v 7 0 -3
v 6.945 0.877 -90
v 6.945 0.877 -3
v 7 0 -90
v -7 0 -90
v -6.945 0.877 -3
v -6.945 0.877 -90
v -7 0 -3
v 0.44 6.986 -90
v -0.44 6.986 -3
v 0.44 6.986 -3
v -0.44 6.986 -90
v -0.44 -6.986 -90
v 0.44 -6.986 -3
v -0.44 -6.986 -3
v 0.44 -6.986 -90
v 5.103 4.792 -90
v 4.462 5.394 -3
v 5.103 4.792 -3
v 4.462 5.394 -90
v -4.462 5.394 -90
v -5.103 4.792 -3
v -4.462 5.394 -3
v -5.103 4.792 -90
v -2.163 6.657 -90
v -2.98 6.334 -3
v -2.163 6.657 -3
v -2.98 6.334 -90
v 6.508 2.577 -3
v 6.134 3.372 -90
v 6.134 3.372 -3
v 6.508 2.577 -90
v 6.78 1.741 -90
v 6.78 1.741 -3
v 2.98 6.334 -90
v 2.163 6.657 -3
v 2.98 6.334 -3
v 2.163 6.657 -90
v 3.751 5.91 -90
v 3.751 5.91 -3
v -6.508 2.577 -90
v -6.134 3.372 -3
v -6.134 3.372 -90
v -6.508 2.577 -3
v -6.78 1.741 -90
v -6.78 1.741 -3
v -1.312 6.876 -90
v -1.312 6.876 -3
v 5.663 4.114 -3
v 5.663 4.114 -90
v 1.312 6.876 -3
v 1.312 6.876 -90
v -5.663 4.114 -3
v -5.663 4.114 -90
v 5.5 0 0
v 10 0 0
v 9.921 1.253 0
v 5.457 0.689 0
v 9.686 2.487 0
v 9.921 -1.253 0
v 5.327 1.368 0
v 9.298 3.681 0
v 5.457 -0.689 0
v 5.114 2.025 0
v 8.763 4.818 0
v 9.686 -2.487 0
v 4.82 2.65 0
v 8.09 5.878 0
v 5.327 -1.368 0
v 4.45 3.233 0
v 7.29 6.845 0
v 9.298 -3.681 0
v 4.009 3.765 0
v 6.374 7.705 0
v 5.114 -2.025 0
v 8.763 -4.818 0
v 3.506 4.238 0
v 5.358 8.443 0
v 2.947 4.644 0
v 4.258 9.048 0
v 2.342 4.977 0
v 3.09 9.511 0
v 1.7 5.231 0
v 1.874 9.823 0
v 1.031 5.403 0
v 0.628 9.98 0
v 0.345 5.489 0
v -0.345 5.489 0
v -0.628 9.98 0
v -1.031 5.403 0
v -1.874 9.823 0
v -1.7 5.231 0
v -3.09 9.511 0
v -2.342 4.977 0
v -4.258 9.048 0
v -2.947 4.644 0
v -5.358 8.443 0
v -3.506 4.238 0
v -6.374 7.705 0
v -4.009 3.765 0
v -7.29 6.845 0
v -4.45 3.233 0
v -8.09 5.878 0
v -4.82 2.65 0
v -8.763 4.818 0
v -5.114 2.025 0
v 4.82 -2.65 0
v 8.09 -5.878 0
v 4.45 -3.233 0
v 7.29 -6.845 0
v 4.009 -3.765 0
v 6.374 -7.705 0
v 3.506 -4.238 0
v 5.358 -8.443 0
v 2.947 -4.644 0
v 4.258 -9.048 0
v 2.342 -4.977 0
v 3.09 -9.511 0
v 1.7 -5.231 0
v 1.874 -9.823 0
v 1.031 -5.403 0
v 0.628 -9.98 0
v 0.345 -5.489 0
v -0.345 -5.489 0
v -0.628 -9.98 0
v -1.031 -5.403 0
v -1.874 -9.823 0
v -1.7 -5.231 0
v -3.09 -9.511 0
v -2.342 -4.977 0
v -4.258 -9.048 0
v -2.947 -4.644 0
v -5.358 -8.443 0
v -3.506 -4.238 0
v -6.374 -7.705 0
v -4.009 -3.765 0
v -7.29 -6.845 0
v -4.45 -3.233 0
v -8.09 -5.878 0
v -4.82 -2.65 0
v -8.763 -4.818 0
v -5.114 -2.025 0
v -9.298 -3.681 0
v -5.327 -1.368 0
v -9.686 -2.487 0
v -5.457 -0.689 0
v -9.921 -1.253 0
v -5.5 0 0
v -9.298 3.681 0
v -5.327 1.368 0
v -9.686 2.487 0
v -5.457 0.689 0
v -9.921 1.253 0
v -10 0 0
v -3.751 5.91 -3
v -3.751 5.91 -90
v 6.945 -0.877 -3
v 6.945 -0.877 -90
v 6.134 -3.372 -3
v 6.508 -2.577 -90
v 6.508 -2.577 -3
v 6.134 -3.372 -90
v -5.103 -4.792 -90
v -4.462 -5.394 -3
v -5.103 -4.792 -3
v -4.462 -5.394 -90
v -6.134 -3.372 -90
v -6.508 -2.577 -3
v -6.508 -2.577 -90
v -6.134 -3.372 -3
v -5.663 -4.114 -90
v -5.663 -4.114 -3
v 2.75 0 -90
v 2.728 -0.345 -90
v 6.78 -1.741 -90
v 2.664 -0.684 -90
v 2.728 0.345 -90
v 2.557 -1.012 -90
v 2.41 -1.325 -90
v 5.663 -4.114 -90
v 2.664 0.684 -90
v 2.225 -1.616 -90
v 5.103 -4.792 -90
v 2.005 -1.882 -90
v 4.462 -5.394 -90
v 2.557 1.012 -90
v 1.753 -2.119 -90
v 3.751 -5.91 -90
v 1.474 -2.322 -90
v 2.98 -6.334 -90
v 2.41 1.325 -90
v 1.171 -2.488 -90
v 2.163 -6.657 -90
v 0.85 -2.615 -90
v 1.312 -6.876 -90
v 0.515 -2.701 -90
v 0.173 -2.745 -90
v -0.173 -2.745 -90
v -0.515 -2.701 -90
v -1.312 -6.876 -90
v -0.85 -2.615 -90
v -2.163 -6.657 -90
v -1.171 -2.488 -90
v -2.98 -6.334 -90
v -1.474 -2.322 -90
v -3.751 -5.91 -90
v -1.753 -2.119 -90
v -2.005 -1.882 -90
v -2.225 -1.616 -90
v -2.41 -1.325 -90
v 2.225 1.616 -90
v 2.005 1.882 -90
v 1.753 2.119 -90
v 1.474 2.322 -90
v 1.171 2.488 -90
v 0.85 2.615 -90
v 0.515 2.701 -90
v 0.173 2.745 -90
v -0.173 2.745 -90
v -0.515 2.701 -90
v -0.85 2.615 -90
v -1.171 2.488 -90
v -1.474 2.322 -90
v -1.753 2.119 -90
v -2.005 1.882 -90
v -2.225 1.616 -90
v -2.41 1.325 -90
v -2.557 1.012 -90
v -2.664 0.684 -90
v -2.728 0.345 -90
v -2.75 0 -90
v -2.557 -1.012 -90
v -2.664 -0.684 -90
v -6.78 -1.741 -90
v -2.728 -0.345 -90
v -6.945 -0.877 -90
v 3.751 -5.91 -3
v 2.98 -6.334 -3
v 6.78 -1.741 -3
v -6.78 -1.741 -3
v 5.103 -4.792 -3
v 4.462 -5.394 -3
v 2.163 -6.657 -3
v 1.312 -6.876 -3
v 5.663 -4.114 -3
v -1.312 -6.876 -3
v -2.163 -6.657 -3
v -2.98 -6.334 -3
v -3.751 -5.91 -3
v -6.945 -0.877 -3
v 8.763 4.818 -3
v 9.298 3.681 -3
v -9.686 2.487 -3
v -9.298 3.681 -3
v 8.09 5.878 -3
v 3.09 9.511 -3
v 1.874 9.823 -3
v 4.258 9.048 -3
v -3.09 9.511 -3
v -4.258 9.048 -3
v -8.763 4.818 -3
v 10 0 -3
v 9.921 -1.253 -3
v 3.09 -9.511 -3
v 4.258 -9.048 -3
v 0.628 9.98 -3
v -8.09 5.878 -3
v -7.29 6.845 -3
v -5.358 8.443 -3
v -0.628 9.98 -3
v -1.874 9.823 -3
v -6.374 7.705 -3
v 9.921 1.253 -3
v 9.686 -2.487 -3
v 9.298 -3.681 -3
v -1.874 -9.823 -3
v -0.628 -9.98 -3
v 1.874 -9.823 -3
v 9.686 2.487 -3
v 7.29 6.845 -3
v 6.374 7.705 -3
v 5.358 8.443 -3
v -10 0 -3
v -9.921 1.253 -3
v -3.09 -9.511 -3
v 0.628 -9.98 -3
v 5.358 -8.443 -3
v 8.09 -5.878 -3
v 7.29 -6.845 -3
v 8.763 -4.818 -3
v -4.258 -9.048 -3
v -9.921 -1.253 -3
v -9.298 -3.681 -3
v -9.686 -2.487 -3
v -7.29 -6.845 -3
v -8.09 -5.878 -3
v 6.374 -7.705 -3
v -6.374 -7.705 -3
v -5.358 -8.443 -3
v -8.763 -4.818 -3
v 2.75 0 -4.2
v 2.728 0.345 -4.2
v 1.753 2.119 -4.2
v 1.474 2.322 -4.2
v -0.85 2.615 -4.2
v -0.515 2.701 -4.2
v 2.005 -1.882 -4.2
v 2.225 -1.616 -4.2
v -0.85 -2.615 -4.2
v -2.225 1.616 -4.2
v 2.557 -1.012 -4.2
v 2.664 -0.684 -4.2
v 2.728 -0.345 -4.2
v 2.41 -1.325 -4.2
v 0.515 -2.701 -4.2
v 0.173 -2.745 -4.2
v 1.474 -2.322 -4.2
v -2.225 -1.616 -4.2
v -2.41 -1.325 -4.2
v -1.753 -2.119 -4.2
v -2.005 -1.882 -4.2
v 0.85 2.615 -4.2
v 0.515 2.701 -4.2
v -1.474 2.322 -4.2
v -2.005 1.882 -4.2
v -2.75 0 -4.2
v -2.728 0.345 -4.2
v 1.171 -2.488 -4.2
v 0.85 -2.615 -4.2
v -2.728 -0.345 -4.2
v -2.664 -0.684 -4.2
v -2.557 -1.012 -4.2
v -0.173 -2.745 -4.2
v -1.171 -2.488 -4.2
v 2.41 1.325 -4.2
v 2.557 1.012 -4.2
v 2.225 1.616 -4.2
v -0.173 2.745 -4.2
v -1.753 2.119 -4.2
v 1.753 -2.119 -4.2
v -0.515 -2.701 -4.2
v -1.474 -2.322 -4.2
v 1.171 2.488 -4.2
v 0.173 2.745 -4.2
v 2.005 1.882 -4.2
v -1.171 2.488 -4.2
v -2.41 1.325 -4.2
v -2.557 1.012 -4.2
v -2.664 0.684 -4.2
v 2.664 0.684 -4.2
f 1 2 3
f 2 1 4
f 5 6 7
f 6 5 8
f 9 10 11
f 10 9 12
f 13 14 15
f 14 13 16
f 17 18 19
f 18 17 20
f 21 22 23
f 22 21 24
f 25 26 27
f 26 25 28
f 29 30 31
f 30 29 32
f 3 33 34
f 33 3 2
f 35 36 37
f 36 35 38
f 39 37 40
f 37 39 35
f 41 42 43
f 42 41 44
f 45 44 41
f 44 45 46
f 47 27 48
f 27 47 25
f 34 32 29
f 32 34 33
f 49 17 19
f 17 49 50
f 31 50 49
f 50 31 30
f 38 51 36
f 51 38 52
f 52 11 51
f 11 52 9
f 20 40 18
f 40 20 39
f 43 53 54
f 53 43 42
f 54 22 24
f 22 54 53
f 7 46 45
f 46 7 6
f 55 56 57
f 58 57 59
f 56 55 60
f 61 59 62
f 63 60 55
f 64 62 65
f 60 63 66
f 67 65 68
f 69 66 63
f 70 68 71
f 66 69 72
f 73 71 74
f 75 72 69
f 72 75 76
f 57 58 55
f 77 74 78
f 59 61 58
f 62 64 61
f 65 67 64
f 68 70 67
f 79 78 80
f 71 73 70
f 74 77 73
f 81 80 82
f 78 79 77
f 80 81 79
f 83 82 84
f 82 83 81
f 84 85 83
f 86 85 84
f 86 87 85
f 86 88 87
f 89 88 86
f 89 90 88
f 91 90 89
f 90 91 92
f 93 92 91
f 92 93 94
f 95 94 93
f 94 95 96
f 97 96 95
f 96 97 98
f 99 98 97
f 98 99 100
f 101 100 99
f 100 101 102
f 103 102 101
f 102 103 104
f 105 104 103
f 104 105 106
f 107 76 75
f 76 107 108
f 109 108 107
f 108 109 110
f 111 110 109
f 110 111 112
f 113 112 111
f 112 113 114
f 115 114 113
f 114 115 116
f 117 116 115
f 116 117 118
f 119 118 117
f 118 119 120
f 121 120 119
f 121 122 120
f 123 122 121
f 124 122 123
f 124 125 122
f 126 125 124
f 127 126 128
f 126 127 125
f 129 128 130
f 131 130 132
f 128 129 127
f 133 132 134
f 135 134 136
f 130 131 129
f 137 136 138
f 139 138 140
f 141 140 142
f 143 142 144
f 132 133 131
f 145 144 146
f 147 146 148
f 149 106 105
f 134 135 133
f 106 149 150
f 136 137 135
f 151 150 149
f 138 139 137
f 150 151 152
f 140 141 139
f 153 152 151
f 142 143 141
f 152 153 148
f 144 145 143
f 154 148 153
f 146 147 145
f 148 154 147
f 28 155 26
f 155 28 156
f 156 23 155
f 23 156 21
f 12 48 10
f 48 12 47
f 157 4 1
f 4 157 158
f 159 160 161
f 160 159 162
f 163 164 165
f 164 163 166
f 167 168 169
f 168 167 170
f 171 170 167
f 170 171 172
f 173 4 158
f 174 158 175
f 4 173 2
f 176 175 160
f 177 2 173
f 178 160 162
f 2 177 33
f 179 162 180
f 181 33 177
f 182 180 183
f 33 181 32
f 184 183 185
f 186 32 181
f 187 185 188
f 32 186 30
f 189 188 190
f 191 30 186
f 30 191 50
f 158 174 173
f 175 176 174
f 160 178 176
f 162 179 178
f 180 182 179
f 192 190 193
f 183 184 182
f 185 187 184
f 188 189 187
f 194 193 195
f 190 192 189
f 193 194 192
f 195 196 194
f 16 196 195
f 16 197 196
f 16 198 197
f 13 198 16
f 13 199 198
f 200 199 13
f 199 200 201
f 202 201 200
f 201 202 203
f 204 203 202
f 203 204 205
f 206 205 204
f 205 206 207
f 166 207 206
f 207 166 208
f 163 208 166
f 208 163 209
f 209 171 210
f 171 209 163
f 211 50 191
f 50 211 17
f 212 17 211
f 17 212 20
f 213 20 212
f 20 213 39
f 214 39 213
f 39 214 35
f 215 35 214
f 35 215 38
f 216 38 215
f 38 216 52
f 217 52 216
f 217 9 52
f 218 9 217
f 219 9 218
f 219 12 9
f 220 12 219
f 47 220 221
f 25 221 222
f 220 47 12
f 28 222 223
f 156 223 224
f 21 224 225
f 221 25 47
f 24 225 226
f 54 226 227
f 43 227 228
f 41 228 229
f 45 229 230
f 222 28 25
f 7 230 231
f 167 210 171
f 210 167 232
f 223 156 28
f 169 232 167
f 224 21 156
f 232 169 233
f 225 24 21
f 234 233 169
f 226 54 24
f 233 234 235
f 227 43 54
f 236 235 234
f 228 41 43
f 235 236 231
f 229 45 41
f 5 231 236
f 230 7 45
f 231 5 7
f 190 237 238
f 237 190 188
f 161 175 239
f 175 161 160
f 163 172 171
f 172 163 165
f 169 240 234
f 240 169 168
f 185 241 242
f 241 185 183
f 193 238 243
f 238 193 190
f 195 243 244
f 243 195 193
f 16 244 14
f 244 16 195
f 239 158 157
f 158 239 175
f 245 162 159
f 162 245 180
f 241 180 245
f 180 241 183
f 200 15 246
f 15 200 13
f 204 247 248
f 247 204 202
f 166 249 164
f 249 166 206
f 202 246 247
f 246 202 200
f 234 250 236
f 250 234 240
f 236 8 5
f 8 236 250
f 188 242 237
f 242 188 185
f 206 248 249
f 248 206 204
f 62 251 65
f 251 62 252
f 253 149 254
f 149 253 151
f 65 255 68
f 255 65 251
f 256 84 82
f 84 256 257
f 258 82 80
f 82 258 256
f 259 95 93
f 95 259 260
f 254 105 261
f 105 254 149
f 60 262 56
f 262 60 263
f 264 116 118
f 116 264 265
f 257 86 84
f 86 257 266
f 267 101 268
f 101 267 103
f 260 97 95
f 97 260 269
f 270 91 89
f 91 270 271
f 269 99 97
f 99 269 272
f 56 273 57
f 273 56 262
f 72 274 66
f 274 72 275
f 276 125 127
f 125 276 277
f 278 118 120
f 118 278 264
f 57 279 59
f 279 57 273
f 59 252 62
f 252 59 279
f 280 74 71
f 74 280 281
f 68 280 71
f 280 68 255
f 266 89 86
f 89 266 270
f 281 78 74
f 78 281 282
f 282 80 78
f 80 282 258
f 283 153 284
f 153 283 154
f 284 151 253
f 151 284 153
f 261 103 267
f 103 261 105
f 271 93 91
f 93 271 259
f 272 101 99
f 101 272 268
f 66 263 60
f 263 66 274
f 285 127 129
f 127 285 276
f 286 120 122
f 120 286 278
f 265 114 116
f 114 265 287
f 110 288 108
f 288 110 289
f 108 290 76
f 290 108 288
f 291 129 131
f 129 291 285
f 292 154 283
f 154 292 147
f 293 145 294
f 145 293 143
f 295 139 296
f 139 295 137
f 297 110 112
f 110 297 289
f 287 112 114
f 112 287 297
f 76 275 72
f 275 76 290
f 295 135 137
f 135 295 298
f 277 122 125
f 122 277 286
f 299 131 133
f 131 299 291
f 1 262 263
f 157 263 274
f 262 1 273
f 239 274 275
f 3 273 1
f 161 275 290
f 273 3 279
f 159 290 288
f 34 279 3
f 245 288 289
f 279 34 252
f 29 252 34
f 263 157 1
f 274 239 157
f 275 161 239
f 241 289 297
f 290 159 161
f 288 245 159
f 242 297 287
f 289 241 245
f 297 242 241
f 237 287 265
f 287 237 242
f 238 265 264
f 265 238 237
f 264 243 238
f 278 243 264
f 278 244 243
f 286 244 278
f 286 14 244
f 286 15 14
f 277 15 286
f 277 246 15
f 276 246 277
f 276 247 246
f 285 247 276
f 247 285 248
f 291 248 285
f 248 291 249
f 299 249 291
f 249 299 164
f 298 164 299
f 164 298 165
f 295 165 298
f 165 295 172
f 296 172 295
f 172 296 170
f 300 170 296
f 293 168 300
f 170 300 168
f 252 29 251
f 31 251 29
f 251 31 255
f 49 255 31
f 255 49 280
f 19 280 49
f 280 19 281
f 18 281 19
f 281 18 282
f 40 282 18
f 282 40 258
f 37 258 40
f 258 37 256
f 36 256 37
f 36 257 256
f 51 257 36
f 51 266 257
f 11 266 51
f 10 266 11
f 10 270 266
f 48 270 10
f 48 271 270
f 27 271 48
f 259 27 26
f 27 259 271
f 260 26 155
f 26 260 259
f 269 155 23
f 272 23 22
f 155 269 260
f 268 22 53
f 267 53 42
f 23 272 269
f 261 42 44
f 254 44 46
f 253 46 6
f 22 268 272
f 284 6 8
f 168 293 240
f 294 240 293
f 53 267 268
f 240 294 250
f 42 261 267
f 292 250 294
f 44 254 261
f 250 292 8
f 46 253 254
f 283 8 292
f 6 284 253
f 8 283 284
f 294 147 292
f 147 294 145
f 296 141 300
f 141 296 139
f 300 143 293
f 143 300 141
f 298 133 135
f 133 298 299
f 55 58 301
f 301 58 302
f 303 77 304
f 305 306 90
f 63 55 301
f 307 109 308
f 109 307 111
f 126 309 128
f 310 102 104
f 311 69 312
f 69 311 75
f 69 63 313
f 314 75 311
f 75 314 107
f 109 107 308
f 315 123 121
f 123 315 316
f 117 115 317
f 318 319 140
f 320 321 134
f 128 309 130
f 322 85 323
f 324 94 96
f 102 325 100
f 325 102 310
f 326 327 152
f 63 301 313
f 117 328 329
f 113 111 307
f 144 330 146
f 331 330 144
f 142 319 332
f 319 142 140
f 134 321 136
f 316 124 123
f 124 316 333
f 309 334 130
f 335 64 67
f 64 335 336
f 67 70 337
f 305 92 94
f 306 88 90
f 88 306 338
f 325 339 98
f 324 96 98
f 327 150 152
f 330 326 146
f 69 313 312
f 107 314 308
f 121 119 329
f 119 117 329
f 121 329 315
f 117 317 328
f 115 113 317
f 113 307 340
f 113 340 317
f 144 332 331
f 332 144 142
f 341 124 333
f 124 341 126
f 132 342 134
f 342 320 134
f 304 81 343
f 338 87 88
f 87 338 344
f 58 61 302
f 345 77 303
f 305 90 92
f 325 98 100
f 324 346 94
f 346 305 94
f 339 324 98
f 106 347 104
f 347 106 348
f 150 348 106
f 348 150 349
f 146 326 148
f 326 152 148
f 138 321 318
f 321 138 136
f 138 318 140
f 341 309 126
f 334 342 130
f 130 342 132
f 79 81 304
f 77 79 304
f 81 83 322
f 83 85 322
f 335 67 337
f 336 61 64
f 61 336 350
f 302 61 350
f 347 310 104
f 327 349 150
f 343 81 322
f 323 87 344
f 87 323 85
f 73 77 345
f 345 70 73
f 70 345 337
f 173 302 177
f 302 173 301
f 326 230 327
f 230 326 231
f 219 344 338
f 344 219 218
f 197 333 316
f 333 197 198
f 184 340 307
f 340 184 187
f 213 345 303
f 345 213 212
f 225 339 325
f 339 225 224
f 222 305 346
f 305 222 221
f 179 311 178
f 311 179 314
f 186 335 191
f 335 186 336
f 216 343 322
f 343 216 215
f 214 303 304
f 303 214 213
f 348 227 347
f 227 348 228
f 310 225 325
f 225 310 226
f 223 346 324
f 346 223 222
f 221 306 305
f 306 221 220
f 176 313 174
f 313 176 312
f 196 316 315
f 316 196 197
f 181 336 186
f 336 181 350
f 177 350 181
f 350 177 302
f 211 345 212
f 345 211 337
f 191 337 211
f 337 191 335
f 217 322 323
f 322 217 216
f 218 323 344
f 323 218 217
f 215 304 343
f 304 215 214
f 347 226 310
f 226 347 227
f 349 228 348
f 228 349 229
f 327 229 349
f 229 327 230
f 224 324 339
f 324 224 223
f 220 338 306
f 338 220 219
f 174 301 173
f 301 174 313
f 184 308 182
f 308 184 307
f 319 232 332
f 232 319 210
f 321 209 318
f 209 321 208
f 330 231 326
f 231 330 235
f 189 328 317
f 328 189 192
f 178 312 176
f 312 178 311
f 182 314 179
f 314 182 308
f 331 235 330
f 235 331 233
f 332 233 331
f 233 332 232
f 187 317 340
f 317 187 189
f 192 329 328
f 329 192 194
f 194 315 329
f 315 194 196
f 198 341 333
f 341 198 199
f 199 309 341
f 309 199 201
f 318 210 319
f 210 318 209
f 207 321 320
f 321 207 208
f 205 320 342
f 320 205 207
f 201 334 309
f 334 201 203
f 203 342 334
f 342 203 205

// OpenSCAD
$fn = 50;


difference() {
	union() {
		translate(v = [0, 0, -90.0000000000]) {
			cylinder(h = 90, r = 7.0000000000);
		}
		translate(v = [0, 0, -3.0000000000]) {
			cylinder(h = 3, r = 10.0000000000);
		}
	}
	union() {
		translate(v = [0, 0, 0]) {
			rotate(a = [0, 0, 0]) {
				difference() {
					union() {
						#translate(v = [0, 0, -90.0000000000]) {
							cylinder(h = 90, r = 2.2500000000);
						}
						#translate(v = [0, 0, -4.2000000000]) {
							cylinder(h = 4.2000000000, r = 7.0000000000, r1 = 2.7500000000, r2 = 5.5000000000);
						}
						#translate(v = [0, 0, -90.0000000000]) {
							cylinder(h = 90, r = 2.7500000000);
						}
						#translate(v = [0, 0, -90.0000000000]) {
							cylinder(h = 90, r = 2.2500000000);
						}
					}
					union();
				}
			}
		}
	}
}
